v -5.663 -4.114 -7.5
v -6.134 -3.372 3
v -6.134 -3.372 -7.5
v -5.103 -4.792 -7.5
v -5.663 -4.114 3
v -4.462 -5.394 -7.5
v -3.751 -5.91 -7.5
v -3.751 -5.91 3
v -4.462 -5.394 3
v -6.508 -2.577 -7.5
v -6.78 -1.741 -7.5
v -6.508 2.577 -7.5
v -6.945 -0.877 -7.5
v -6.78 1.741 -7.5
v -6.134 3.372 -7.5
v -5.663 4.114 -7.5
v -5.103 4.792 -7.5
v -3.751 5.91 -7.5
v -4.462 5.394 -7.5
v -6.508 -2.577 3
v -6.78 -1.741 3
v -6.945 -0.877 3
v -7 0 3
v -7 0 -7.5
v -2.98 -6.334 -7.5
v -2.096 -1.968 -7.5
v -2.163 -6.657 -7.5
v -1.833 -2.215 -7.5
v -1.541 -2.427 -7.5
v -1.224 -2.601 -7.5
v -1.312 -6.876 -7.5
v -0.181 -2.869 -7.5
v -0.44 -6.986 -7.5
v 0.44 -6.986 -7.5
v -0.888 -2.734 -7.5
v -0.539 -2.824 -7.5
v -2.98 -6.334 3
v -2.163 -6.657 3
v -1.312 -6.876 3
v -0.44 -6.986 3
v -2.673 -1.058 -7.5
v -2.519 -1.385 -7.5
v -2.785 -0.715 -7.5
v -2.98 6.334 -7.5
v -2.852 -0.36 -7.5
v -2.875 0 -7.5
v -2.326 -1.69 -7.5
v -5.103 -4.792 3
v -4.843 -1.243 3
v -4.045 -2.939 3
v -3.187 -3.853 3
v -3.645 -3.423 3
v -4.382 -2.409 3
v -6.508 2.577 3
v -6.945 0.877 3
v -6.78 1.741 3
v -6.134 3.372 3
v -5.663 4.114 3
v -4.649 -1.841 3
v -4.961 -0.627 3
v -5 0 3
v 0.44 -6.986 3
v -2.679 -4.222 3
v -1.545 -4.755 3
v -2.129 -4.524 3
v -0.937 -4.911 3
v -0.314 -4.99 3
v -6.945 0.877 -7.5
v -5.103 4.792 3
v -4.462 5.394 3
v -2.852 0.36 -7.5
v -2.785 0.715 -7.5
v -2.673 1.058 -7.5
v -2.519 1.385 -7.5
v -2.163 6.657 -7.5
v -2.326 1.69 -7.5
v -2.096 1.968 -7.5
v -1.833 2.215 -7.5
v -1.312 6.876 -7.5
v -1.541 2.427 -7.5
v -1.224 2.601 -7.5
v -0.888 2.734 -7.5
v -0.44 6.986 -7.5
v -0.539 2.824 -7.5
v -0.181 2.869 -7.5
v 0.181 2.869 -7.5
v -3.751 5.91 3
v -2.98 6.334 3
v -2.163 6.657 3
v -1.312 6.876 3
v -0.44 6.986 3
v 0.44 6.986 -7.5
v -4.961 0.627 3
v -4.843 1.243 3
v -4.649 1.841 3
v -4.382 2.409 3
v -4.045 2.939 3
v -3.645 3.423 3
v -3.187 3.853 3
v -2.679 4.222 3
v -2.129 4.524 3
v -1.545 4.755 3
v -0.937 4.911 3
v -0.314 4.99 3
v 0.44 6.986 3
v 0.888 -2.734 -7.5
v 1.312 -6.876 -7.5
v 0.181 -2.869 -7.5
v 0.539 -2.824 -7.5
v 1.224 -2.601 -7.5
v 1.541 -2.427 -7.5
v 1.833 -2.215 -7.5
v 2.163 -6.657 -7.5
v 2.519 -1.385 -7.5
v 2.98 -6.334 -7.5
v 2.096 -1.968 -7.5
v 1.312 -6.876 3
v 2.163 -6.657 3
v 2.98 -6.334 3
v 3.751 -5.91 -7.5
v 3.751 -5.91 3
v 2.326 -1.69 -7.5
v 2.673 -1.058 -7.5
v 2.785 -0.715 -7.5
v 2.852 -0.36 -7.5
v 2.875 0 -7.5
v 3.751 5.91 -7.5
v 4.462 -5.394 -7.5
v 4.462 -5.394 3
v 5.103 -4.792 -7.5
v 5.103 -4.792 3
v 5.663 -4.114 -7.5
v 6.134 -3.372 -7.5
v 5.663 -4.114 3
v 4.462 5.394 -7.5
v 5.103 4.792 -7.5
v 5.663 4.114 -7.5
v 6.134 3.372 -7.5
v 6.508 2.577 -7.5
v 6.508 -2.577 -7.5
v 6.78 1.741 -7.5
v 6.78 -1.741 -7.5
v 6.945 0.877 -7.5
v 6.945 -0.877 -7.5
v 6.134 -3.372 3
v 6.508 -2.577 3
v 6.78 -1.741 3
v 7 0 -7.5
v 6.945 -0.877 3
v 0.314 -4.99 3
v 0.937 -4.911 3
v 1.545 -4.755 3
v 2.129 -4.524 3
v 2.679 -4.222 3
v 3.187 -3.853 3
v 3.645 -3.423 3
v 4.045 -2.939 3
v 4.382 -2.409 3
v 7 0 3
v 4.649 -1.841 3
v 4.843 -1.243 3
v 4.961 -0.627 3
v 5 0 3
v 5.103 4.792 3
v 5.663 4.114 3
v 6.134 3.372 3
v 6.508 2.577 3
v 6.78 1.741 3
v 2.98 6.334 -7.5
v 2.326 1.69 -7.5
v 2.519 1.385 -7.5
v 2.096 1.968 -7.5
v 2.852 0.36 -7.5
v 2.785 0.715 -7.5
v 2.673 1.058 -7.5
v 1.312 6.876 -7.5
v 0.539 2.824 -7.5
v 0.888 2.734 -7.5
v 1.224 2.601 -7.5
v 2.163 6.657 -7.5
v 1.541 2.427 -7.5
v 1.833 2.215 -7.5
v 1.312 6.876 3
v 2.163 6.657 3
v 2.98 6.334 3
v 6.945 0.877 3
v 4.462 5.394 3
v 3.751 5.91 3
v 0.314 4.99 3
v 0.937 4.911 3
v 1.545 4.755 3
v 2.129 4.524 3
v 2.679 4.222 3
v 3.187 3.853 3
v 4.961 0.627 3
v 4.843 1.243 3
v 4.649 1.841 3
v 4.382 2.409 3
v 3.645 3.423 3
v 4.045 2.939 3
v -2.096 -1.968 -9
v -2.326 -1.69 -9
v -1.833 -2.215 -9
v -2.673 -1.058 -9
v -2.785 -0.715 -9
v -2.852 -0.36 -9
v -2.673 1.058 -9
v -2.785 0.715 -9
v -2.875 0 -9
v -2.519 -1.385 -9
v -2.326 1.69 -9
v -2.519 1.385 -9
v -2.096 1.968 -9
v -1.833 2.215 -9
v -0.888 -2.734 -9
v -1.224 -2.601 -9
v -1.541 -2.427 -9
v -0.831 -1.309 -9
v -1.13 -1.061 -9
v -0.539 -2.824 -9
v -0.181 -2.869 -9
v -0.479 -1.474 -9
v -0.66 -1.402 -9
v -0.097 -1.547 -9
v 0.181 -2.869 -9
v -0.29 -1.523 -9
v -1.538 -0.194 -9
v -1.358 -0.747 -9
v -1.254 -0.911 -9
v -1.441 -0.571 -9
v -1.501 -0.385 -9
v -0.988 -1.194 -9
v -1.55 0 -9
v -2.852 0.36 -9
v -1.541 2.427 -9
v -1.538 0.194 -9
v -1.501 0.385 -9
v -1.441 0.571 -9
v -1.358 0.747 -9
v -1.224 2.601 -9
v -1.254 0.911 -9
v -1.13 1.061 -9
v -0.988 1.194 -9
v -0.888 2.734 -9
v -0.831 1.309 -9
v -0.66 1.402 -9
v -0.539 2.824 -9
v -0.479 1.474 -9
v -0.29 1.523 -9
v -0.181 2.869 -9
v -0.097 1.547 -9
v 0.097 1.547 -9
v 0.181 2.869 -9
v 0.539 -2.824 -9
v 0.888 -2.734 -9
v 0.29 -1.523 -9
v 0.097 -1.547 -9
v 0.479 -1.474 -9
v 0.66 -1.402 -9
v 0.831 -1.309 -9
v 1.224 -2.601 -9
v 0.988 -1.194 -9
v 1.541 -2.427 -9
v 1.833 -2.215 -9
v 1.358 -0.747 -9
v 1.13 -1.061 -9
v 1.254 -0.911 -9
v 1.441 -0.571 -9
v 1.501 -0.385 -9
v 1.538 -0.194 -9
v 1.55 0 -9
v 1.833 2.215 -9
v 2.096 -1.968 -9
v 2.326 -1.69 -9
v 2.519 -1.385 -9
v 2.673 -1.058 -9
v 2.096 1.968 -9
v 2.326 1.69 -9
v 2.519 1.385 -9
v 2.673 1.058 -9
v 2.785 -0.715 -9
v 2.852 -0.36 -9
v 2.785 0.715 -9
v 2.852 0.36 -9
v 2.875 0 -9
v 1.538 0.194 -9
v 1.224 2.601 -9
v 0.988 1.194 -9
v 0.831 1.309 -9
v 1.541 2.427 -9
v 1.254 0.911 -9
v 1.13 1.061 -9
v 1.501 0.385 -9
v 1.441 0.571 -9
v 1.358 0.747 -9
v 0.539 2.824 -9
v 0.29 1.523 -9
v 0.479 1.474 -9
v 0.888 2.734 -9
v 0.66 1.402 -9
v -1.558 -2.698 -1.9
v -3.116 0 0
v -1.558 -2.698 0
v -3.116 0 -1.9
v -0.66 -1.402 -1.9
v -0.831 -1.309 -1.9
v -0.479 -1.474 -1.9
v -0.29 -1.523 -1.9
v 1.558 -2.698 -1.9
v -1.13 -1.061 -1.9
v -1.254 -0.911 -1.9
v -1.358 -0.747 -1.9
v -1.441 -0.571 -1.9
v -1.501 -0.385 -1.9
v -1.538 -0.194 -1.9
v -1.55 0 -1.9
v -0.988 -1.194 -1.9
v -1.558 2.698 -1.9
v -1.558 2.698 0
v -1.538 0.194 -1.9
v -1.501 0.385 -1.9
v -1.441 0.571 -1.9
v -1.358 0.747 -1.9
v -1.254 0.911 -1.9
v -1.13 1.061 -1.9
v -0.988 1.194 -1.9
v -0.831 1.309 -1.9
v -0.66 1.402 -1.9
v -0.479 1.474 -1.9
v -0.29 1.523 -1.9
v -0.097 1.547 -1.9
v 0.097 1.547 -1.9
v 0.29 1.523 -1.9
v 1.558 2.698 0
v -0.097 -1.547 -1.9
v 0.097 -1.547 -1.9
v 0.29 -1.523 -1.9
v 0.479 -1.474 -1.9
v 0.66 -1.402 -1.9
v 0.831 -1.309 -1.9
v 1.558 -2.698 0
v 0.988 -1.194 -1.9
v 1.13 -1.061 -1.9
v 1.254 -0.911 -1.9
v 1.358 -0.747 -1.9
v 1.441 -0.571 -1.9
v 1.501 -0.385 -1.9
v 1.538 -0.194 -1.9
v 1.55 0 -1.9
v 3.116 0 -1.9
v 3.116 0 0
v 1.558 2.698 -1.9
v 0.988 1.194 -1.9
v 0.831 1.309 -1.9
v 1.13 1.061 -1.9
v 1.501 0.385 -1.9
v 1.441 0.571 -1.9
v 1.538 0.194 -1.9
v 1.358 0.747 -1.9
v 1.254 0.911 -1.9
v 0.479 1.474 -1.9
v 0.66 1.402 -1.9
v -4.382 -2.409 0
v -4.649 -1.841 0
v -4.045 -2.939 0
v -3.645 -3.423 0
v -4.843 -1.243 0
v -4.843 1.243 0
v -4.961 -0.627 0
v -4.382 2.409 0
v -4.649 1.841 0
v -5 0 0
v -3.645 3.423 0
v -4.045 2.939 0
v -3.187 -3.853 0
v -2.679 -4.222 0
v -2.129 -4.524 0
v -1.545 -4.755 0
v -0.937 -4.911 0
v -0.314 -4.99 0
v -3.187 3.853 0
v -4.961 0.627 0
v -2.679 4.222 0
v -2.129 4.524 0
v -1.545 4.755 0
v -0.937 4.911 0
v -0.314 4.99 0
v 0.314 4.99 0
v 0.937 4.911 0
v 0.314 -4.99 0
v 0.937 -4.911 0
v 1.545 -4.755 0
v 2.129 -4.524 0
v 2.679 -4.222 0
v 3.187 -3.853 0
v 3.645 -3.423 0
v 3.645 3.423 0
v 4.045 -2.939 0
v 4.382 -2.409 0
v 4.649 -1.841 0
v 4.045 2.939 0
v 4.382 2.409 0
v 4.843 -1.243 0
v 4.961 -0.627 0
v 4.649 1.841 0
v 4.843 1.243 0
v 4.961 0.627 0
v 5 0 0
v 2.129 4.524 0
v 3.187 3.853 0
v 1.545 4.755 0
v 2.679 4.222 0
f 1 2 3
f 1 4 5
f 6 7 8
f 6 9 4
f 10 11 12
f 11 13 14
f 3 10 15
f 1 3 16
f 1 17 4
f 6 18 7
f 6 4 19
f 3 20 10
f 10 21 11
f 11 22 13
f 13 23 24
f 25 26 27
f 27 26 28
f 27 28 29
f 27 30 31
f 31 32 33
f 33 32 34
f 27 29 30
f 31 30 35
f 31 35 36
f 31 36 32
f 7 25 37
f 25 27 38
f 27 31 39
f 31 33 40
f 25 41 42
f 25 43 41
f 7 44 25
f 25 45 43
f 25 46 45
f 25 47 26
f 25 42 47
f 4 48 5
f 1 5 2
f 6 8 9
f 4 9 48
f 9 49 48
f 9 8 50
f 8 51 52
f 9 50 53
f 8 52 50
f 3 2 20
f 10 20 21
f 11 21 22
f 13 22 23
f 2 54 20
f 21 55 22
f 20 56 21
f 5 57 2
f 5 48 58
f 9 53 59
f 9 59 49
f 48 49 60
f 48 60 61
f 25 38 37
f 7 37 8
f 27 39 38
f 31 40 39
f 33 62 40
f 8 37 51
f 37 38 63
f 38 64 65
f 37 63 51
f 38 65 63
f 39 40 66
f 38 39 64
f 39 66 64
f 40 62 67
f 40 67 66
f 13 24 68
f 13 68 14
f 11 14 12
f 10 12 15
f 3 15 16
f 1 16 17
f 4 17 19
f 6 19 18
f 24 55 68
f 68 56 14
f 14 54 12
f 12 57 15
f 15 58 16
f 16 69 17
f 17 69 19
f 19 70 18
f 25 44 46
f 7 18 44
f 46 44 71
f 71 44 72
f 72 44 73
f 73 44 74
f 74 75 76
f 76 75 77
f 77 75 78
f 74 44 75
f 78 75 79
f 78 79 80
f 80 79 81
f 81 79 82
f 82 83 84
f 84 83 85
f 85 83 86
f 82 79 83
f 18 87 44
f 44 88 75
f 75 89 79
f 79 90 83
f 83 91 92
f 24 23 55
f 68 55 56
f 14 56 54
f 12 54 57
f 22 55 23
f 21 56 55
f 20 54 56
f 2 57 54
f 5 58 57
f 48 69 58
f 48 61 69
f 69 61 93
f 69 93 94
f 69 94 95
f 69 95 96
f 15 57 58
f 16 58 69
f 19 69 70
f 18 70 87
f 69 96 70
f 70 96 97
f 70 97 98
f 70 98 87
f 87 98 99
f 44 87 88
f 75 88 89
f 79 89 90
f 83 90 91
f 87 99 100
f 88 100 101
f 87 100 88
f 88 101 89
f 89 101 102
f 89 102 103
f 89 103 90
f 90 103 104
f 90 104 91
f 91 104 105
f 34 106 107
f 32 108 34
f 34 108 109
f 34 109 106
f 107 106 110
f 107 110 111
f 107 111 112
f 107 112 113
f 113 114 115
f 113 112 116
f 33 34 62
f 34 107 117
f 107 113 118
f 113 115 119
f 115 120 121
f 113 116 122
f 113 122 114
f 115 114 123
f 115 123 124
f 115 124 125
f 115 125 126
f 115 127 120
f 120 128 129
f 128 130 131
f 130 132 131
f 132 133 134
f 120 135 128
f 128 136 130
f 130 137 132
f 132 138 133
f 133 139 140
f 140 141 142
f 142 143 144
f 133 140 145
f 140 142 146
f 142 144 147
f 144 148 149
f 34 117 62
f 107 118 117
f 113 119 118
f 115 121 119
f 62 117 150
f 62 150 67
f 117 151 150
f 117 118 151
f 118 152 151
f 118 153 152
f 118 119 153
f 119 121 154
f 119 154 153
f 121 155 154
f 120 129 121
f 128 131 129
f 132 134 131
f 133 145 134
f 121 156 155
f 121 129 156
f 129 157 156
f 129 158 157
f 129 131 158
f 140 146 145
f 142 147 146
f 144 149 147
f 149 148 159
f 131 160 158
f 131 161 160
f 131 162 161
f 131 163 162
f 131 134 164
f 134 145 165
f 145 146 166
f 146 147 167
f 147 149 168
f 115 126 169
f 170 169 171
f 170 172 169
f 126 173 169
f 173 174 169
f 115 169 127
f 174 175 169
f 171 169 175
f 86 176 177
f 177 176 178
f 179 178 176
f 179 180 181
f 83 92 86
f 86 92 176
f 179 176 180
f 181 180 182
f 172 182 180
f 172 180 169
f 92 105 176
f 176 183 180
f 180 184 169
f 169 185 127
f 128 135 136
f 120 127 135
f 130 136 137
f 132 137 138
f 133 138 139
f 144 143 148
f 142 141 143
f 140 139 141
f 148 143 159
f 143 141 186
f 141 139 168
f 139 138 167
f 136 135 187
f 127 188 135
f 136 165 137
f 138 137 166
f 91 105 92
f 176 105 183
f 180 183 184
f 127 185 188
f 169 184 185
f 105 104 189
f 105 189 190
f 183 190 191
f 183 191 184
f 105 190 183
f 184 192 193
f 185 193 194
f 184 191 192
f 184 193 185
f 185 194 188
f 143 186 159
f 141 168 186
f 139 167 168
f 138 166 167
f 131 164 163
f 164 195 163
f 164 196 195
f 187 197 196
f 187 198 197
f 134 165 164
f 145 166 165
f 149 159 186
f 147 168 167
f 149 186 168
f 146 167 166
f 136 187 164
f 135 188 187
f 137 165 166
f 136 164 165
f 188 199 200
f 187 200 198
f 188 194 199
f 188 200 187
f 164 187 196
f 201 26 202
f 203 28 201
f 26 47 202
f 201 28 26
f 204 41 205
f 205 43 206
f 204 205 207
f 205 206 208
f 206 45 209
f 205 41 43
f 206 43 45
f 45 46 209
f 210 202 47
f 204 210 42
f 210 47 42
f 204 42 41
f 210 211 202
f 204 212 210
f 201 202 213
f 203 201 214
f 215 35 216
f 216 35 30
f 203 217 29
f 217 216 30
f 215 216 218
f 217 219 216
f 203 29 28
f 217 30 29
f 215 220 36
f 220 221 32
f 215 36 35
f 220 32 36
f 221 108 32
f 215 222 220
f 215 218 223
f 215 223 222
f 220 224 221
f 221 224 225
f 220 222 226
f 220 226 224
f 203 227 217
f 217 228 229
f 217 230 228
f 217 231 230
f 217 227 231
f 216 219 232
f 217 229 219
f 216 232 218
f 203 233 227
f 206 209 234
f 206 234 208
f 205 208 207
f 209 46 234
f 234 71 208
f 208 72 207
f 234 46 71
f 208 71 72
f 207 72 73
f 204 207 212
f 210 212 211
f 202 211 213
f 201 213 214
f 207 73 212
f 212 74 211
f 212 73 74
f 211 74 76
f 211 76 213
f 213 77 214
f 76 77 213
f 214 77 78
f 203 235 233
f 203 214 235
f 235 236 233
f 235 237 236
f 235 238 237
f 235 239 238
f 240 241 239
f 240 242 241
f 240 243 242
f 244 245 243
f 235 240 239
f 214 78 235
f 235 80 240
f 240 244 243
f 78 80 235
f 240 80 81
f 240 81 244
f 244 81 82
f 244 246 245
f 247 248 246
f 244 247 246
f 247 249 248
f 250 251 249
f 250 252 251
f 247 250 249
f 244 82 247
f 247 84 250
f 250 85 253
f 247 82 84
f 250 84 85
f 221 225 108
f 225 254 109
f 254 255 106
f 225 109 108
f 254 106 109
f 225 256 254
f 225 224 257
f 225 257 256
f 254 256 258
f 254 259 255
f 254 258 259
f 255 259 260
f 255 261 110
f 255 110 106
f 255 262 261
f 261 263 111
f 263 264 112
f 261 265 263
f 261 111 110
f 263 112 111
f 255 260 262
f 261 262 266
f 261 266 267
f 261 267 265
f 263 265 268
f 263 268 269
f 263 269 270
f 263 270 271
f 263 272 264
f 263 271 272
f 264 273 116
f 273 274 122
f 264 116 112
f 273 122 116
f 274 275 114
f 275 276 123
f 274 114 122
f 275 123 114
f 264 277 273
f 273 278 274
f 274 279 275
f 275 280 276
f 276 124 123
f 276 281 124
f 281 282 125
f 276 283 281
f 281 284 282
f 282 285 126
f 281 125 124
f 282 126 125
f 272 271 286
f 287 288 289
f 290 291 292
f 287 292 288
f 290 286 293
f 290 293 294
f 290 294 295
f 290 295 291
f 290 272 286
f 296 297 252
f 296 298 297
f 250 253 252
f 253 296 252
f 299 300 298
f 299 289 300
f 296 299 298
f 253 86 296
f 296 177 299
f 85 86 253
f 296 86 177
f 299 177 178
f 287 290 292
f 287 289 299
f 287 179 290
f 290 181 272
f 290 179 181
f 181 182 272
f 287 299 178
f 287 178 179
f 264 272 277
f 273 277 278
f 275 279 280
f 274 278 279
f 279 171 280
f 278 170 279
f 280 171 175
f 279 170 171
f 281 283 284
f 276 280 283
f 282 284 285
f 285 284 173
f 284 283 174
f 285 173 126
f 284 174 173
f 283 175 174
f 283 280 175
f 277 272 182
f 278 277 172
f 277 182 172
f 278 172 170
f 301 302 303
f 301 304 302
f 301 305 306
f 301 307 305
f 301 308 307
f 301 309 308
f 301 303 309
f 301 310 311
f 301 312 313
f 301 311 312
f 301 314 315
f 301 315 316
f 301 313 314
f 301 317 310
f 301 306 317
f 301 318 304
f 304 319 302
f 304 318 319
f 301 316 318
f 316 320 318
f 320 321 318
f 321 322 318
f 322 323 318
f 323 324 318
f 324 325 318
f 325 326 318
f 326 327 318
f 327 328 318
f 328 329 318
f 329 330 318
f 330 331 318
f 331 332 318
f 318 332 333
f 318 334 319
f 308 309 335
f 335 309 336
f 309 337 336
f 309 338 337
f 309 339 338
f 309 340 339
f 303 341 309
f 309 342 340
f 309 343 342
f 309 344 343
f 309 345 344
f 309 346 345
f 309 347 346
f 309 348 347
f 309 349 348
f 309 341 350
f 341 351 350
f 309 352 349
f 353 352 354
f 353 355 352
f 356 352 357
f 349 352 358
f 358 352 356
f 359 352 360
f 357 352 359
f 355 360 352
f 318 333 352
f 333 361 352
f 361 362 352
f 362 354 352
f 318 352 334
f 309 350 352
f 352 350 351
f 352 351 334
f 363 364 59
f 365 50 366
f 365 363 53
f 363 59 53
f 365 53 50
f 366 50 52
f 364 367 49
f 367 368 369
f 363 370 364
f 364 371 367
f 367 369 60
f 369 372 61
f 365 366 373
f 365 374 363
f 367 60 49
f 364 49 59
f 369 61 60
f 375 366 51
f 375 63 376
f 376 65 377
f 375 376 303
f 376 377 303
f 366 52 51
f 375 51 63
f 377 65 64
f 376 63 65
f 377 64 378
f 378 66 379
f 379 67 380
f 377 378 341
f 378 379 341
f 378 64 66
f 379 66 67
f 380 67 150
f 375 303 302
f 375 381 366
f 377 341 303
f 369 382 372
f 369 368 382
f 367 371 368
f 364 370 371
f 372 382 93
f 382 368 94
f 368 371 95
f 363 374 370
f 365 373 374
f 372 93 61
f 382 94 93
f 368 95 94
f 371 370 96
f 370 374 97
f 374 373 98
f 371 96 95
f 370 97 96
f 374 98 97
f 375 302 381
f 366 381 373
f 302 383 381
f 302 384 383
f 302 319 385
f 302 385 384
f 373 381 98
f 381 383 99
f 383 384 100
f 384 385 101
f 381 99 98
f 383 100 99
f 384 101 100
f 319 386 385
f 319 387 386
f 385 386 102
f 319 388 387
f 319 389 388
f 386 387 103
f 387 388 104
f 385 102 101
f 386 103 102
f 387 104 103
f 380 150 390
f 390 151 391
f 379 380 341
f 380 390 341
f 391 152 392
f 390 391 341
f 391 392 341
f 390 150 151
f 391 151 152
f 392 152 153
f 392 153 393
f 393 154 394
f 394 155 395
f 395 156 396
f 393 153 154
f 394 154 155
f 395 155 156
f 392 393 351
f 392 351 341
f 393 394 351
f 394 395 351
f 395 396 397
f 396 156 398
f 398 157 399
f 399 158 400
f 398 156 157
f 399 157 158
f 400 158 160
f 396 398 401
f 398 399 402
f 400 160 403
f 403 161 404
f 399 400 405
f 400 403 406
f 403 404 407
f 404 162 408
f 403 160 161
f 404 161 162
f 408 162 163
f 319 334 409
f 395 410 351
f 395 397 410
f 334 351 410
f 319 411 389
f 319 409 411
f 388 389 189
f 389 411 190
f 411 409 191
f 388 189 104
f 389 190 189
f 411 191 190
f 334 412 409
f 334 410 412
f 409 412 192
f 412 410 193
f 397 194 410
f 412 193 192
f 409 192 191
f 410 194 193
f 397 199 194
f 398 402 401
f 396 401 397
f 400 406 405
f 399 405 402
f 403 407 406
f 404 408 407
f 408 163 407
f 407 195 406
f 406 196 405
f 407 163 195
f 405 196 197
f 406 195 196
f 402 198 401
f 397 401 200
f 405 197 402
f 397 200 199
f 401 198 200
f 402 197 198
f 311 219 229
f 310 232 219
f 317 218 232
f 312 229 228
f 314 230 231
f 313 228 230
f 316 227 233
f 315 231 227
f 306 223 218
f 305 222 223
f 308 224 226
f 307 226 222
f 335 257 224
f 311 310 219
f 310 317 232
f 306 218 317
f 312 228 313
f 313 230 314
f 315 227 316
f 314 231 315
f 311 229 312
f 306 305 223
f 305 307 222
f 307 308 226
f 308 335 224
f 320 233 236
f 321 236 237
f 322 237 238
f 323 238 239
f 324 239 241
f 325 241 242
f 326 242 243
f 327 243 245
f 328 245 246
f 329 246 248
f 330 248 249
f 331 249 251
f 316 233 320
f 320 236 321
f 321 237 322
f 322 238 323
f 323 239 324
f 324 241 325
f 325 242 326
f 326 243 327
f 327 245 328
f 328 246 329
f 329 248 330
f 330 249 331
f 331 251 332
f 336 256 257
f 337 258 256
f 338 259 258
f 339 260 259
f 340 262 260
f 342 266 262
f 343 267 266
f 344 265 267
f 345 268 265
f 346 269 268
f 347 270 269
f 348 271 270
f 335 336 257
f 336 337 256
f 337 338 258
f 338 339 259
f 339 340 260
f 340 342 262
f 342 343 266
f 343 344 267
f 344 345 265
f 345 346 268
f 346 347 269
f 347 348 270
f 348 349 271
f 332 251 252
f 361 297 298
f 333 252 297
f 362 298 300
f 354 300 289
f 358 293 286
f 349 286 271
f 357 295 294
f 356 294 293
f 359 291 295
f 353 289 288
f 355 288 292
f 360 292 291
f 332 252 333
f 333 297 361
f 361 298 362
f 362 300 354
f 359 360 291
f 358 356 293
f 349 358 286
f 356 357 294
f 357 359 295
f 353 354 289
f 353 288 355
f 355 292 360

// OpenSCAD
$fn = 50;

difference() {
	union() {
		translate(v = [0, 0, -7.5]) {
			cylinder(h = 10.5, r = 7.0);
		}
		#translate(v = [0, 0, -9.0]) {
			cylinder(h = 9, r = 2.875);
		}
	}
	union() {
		translate(v = [0, 0, 0]) {
			rotate(a = [0, 0, 0]) {
				difference() {
					union() {
						translate(v = [0, 0, -1.9]) {
							linear_extrude(height = 1.9) {
								polygon(points = [[3.1158, 0.0], [1.5579000000000005, 2.698361953111554], [-1.5578999999999994, 2.6983619531115544], [-3.1158, 3.815754496783323e-16], [-1.5579000000000014, -2.6983619531115535], [1.557899999999998, -2.6983619531115552]]);
							}
						}
					}
					union();
				}
			}
		}
		#cylinder(h = 3, r = 5.0);
		#translate(v = [0, 0, -100.0]) {
			cylinder(h = 200, r = 1.55);
		}
	}
}
